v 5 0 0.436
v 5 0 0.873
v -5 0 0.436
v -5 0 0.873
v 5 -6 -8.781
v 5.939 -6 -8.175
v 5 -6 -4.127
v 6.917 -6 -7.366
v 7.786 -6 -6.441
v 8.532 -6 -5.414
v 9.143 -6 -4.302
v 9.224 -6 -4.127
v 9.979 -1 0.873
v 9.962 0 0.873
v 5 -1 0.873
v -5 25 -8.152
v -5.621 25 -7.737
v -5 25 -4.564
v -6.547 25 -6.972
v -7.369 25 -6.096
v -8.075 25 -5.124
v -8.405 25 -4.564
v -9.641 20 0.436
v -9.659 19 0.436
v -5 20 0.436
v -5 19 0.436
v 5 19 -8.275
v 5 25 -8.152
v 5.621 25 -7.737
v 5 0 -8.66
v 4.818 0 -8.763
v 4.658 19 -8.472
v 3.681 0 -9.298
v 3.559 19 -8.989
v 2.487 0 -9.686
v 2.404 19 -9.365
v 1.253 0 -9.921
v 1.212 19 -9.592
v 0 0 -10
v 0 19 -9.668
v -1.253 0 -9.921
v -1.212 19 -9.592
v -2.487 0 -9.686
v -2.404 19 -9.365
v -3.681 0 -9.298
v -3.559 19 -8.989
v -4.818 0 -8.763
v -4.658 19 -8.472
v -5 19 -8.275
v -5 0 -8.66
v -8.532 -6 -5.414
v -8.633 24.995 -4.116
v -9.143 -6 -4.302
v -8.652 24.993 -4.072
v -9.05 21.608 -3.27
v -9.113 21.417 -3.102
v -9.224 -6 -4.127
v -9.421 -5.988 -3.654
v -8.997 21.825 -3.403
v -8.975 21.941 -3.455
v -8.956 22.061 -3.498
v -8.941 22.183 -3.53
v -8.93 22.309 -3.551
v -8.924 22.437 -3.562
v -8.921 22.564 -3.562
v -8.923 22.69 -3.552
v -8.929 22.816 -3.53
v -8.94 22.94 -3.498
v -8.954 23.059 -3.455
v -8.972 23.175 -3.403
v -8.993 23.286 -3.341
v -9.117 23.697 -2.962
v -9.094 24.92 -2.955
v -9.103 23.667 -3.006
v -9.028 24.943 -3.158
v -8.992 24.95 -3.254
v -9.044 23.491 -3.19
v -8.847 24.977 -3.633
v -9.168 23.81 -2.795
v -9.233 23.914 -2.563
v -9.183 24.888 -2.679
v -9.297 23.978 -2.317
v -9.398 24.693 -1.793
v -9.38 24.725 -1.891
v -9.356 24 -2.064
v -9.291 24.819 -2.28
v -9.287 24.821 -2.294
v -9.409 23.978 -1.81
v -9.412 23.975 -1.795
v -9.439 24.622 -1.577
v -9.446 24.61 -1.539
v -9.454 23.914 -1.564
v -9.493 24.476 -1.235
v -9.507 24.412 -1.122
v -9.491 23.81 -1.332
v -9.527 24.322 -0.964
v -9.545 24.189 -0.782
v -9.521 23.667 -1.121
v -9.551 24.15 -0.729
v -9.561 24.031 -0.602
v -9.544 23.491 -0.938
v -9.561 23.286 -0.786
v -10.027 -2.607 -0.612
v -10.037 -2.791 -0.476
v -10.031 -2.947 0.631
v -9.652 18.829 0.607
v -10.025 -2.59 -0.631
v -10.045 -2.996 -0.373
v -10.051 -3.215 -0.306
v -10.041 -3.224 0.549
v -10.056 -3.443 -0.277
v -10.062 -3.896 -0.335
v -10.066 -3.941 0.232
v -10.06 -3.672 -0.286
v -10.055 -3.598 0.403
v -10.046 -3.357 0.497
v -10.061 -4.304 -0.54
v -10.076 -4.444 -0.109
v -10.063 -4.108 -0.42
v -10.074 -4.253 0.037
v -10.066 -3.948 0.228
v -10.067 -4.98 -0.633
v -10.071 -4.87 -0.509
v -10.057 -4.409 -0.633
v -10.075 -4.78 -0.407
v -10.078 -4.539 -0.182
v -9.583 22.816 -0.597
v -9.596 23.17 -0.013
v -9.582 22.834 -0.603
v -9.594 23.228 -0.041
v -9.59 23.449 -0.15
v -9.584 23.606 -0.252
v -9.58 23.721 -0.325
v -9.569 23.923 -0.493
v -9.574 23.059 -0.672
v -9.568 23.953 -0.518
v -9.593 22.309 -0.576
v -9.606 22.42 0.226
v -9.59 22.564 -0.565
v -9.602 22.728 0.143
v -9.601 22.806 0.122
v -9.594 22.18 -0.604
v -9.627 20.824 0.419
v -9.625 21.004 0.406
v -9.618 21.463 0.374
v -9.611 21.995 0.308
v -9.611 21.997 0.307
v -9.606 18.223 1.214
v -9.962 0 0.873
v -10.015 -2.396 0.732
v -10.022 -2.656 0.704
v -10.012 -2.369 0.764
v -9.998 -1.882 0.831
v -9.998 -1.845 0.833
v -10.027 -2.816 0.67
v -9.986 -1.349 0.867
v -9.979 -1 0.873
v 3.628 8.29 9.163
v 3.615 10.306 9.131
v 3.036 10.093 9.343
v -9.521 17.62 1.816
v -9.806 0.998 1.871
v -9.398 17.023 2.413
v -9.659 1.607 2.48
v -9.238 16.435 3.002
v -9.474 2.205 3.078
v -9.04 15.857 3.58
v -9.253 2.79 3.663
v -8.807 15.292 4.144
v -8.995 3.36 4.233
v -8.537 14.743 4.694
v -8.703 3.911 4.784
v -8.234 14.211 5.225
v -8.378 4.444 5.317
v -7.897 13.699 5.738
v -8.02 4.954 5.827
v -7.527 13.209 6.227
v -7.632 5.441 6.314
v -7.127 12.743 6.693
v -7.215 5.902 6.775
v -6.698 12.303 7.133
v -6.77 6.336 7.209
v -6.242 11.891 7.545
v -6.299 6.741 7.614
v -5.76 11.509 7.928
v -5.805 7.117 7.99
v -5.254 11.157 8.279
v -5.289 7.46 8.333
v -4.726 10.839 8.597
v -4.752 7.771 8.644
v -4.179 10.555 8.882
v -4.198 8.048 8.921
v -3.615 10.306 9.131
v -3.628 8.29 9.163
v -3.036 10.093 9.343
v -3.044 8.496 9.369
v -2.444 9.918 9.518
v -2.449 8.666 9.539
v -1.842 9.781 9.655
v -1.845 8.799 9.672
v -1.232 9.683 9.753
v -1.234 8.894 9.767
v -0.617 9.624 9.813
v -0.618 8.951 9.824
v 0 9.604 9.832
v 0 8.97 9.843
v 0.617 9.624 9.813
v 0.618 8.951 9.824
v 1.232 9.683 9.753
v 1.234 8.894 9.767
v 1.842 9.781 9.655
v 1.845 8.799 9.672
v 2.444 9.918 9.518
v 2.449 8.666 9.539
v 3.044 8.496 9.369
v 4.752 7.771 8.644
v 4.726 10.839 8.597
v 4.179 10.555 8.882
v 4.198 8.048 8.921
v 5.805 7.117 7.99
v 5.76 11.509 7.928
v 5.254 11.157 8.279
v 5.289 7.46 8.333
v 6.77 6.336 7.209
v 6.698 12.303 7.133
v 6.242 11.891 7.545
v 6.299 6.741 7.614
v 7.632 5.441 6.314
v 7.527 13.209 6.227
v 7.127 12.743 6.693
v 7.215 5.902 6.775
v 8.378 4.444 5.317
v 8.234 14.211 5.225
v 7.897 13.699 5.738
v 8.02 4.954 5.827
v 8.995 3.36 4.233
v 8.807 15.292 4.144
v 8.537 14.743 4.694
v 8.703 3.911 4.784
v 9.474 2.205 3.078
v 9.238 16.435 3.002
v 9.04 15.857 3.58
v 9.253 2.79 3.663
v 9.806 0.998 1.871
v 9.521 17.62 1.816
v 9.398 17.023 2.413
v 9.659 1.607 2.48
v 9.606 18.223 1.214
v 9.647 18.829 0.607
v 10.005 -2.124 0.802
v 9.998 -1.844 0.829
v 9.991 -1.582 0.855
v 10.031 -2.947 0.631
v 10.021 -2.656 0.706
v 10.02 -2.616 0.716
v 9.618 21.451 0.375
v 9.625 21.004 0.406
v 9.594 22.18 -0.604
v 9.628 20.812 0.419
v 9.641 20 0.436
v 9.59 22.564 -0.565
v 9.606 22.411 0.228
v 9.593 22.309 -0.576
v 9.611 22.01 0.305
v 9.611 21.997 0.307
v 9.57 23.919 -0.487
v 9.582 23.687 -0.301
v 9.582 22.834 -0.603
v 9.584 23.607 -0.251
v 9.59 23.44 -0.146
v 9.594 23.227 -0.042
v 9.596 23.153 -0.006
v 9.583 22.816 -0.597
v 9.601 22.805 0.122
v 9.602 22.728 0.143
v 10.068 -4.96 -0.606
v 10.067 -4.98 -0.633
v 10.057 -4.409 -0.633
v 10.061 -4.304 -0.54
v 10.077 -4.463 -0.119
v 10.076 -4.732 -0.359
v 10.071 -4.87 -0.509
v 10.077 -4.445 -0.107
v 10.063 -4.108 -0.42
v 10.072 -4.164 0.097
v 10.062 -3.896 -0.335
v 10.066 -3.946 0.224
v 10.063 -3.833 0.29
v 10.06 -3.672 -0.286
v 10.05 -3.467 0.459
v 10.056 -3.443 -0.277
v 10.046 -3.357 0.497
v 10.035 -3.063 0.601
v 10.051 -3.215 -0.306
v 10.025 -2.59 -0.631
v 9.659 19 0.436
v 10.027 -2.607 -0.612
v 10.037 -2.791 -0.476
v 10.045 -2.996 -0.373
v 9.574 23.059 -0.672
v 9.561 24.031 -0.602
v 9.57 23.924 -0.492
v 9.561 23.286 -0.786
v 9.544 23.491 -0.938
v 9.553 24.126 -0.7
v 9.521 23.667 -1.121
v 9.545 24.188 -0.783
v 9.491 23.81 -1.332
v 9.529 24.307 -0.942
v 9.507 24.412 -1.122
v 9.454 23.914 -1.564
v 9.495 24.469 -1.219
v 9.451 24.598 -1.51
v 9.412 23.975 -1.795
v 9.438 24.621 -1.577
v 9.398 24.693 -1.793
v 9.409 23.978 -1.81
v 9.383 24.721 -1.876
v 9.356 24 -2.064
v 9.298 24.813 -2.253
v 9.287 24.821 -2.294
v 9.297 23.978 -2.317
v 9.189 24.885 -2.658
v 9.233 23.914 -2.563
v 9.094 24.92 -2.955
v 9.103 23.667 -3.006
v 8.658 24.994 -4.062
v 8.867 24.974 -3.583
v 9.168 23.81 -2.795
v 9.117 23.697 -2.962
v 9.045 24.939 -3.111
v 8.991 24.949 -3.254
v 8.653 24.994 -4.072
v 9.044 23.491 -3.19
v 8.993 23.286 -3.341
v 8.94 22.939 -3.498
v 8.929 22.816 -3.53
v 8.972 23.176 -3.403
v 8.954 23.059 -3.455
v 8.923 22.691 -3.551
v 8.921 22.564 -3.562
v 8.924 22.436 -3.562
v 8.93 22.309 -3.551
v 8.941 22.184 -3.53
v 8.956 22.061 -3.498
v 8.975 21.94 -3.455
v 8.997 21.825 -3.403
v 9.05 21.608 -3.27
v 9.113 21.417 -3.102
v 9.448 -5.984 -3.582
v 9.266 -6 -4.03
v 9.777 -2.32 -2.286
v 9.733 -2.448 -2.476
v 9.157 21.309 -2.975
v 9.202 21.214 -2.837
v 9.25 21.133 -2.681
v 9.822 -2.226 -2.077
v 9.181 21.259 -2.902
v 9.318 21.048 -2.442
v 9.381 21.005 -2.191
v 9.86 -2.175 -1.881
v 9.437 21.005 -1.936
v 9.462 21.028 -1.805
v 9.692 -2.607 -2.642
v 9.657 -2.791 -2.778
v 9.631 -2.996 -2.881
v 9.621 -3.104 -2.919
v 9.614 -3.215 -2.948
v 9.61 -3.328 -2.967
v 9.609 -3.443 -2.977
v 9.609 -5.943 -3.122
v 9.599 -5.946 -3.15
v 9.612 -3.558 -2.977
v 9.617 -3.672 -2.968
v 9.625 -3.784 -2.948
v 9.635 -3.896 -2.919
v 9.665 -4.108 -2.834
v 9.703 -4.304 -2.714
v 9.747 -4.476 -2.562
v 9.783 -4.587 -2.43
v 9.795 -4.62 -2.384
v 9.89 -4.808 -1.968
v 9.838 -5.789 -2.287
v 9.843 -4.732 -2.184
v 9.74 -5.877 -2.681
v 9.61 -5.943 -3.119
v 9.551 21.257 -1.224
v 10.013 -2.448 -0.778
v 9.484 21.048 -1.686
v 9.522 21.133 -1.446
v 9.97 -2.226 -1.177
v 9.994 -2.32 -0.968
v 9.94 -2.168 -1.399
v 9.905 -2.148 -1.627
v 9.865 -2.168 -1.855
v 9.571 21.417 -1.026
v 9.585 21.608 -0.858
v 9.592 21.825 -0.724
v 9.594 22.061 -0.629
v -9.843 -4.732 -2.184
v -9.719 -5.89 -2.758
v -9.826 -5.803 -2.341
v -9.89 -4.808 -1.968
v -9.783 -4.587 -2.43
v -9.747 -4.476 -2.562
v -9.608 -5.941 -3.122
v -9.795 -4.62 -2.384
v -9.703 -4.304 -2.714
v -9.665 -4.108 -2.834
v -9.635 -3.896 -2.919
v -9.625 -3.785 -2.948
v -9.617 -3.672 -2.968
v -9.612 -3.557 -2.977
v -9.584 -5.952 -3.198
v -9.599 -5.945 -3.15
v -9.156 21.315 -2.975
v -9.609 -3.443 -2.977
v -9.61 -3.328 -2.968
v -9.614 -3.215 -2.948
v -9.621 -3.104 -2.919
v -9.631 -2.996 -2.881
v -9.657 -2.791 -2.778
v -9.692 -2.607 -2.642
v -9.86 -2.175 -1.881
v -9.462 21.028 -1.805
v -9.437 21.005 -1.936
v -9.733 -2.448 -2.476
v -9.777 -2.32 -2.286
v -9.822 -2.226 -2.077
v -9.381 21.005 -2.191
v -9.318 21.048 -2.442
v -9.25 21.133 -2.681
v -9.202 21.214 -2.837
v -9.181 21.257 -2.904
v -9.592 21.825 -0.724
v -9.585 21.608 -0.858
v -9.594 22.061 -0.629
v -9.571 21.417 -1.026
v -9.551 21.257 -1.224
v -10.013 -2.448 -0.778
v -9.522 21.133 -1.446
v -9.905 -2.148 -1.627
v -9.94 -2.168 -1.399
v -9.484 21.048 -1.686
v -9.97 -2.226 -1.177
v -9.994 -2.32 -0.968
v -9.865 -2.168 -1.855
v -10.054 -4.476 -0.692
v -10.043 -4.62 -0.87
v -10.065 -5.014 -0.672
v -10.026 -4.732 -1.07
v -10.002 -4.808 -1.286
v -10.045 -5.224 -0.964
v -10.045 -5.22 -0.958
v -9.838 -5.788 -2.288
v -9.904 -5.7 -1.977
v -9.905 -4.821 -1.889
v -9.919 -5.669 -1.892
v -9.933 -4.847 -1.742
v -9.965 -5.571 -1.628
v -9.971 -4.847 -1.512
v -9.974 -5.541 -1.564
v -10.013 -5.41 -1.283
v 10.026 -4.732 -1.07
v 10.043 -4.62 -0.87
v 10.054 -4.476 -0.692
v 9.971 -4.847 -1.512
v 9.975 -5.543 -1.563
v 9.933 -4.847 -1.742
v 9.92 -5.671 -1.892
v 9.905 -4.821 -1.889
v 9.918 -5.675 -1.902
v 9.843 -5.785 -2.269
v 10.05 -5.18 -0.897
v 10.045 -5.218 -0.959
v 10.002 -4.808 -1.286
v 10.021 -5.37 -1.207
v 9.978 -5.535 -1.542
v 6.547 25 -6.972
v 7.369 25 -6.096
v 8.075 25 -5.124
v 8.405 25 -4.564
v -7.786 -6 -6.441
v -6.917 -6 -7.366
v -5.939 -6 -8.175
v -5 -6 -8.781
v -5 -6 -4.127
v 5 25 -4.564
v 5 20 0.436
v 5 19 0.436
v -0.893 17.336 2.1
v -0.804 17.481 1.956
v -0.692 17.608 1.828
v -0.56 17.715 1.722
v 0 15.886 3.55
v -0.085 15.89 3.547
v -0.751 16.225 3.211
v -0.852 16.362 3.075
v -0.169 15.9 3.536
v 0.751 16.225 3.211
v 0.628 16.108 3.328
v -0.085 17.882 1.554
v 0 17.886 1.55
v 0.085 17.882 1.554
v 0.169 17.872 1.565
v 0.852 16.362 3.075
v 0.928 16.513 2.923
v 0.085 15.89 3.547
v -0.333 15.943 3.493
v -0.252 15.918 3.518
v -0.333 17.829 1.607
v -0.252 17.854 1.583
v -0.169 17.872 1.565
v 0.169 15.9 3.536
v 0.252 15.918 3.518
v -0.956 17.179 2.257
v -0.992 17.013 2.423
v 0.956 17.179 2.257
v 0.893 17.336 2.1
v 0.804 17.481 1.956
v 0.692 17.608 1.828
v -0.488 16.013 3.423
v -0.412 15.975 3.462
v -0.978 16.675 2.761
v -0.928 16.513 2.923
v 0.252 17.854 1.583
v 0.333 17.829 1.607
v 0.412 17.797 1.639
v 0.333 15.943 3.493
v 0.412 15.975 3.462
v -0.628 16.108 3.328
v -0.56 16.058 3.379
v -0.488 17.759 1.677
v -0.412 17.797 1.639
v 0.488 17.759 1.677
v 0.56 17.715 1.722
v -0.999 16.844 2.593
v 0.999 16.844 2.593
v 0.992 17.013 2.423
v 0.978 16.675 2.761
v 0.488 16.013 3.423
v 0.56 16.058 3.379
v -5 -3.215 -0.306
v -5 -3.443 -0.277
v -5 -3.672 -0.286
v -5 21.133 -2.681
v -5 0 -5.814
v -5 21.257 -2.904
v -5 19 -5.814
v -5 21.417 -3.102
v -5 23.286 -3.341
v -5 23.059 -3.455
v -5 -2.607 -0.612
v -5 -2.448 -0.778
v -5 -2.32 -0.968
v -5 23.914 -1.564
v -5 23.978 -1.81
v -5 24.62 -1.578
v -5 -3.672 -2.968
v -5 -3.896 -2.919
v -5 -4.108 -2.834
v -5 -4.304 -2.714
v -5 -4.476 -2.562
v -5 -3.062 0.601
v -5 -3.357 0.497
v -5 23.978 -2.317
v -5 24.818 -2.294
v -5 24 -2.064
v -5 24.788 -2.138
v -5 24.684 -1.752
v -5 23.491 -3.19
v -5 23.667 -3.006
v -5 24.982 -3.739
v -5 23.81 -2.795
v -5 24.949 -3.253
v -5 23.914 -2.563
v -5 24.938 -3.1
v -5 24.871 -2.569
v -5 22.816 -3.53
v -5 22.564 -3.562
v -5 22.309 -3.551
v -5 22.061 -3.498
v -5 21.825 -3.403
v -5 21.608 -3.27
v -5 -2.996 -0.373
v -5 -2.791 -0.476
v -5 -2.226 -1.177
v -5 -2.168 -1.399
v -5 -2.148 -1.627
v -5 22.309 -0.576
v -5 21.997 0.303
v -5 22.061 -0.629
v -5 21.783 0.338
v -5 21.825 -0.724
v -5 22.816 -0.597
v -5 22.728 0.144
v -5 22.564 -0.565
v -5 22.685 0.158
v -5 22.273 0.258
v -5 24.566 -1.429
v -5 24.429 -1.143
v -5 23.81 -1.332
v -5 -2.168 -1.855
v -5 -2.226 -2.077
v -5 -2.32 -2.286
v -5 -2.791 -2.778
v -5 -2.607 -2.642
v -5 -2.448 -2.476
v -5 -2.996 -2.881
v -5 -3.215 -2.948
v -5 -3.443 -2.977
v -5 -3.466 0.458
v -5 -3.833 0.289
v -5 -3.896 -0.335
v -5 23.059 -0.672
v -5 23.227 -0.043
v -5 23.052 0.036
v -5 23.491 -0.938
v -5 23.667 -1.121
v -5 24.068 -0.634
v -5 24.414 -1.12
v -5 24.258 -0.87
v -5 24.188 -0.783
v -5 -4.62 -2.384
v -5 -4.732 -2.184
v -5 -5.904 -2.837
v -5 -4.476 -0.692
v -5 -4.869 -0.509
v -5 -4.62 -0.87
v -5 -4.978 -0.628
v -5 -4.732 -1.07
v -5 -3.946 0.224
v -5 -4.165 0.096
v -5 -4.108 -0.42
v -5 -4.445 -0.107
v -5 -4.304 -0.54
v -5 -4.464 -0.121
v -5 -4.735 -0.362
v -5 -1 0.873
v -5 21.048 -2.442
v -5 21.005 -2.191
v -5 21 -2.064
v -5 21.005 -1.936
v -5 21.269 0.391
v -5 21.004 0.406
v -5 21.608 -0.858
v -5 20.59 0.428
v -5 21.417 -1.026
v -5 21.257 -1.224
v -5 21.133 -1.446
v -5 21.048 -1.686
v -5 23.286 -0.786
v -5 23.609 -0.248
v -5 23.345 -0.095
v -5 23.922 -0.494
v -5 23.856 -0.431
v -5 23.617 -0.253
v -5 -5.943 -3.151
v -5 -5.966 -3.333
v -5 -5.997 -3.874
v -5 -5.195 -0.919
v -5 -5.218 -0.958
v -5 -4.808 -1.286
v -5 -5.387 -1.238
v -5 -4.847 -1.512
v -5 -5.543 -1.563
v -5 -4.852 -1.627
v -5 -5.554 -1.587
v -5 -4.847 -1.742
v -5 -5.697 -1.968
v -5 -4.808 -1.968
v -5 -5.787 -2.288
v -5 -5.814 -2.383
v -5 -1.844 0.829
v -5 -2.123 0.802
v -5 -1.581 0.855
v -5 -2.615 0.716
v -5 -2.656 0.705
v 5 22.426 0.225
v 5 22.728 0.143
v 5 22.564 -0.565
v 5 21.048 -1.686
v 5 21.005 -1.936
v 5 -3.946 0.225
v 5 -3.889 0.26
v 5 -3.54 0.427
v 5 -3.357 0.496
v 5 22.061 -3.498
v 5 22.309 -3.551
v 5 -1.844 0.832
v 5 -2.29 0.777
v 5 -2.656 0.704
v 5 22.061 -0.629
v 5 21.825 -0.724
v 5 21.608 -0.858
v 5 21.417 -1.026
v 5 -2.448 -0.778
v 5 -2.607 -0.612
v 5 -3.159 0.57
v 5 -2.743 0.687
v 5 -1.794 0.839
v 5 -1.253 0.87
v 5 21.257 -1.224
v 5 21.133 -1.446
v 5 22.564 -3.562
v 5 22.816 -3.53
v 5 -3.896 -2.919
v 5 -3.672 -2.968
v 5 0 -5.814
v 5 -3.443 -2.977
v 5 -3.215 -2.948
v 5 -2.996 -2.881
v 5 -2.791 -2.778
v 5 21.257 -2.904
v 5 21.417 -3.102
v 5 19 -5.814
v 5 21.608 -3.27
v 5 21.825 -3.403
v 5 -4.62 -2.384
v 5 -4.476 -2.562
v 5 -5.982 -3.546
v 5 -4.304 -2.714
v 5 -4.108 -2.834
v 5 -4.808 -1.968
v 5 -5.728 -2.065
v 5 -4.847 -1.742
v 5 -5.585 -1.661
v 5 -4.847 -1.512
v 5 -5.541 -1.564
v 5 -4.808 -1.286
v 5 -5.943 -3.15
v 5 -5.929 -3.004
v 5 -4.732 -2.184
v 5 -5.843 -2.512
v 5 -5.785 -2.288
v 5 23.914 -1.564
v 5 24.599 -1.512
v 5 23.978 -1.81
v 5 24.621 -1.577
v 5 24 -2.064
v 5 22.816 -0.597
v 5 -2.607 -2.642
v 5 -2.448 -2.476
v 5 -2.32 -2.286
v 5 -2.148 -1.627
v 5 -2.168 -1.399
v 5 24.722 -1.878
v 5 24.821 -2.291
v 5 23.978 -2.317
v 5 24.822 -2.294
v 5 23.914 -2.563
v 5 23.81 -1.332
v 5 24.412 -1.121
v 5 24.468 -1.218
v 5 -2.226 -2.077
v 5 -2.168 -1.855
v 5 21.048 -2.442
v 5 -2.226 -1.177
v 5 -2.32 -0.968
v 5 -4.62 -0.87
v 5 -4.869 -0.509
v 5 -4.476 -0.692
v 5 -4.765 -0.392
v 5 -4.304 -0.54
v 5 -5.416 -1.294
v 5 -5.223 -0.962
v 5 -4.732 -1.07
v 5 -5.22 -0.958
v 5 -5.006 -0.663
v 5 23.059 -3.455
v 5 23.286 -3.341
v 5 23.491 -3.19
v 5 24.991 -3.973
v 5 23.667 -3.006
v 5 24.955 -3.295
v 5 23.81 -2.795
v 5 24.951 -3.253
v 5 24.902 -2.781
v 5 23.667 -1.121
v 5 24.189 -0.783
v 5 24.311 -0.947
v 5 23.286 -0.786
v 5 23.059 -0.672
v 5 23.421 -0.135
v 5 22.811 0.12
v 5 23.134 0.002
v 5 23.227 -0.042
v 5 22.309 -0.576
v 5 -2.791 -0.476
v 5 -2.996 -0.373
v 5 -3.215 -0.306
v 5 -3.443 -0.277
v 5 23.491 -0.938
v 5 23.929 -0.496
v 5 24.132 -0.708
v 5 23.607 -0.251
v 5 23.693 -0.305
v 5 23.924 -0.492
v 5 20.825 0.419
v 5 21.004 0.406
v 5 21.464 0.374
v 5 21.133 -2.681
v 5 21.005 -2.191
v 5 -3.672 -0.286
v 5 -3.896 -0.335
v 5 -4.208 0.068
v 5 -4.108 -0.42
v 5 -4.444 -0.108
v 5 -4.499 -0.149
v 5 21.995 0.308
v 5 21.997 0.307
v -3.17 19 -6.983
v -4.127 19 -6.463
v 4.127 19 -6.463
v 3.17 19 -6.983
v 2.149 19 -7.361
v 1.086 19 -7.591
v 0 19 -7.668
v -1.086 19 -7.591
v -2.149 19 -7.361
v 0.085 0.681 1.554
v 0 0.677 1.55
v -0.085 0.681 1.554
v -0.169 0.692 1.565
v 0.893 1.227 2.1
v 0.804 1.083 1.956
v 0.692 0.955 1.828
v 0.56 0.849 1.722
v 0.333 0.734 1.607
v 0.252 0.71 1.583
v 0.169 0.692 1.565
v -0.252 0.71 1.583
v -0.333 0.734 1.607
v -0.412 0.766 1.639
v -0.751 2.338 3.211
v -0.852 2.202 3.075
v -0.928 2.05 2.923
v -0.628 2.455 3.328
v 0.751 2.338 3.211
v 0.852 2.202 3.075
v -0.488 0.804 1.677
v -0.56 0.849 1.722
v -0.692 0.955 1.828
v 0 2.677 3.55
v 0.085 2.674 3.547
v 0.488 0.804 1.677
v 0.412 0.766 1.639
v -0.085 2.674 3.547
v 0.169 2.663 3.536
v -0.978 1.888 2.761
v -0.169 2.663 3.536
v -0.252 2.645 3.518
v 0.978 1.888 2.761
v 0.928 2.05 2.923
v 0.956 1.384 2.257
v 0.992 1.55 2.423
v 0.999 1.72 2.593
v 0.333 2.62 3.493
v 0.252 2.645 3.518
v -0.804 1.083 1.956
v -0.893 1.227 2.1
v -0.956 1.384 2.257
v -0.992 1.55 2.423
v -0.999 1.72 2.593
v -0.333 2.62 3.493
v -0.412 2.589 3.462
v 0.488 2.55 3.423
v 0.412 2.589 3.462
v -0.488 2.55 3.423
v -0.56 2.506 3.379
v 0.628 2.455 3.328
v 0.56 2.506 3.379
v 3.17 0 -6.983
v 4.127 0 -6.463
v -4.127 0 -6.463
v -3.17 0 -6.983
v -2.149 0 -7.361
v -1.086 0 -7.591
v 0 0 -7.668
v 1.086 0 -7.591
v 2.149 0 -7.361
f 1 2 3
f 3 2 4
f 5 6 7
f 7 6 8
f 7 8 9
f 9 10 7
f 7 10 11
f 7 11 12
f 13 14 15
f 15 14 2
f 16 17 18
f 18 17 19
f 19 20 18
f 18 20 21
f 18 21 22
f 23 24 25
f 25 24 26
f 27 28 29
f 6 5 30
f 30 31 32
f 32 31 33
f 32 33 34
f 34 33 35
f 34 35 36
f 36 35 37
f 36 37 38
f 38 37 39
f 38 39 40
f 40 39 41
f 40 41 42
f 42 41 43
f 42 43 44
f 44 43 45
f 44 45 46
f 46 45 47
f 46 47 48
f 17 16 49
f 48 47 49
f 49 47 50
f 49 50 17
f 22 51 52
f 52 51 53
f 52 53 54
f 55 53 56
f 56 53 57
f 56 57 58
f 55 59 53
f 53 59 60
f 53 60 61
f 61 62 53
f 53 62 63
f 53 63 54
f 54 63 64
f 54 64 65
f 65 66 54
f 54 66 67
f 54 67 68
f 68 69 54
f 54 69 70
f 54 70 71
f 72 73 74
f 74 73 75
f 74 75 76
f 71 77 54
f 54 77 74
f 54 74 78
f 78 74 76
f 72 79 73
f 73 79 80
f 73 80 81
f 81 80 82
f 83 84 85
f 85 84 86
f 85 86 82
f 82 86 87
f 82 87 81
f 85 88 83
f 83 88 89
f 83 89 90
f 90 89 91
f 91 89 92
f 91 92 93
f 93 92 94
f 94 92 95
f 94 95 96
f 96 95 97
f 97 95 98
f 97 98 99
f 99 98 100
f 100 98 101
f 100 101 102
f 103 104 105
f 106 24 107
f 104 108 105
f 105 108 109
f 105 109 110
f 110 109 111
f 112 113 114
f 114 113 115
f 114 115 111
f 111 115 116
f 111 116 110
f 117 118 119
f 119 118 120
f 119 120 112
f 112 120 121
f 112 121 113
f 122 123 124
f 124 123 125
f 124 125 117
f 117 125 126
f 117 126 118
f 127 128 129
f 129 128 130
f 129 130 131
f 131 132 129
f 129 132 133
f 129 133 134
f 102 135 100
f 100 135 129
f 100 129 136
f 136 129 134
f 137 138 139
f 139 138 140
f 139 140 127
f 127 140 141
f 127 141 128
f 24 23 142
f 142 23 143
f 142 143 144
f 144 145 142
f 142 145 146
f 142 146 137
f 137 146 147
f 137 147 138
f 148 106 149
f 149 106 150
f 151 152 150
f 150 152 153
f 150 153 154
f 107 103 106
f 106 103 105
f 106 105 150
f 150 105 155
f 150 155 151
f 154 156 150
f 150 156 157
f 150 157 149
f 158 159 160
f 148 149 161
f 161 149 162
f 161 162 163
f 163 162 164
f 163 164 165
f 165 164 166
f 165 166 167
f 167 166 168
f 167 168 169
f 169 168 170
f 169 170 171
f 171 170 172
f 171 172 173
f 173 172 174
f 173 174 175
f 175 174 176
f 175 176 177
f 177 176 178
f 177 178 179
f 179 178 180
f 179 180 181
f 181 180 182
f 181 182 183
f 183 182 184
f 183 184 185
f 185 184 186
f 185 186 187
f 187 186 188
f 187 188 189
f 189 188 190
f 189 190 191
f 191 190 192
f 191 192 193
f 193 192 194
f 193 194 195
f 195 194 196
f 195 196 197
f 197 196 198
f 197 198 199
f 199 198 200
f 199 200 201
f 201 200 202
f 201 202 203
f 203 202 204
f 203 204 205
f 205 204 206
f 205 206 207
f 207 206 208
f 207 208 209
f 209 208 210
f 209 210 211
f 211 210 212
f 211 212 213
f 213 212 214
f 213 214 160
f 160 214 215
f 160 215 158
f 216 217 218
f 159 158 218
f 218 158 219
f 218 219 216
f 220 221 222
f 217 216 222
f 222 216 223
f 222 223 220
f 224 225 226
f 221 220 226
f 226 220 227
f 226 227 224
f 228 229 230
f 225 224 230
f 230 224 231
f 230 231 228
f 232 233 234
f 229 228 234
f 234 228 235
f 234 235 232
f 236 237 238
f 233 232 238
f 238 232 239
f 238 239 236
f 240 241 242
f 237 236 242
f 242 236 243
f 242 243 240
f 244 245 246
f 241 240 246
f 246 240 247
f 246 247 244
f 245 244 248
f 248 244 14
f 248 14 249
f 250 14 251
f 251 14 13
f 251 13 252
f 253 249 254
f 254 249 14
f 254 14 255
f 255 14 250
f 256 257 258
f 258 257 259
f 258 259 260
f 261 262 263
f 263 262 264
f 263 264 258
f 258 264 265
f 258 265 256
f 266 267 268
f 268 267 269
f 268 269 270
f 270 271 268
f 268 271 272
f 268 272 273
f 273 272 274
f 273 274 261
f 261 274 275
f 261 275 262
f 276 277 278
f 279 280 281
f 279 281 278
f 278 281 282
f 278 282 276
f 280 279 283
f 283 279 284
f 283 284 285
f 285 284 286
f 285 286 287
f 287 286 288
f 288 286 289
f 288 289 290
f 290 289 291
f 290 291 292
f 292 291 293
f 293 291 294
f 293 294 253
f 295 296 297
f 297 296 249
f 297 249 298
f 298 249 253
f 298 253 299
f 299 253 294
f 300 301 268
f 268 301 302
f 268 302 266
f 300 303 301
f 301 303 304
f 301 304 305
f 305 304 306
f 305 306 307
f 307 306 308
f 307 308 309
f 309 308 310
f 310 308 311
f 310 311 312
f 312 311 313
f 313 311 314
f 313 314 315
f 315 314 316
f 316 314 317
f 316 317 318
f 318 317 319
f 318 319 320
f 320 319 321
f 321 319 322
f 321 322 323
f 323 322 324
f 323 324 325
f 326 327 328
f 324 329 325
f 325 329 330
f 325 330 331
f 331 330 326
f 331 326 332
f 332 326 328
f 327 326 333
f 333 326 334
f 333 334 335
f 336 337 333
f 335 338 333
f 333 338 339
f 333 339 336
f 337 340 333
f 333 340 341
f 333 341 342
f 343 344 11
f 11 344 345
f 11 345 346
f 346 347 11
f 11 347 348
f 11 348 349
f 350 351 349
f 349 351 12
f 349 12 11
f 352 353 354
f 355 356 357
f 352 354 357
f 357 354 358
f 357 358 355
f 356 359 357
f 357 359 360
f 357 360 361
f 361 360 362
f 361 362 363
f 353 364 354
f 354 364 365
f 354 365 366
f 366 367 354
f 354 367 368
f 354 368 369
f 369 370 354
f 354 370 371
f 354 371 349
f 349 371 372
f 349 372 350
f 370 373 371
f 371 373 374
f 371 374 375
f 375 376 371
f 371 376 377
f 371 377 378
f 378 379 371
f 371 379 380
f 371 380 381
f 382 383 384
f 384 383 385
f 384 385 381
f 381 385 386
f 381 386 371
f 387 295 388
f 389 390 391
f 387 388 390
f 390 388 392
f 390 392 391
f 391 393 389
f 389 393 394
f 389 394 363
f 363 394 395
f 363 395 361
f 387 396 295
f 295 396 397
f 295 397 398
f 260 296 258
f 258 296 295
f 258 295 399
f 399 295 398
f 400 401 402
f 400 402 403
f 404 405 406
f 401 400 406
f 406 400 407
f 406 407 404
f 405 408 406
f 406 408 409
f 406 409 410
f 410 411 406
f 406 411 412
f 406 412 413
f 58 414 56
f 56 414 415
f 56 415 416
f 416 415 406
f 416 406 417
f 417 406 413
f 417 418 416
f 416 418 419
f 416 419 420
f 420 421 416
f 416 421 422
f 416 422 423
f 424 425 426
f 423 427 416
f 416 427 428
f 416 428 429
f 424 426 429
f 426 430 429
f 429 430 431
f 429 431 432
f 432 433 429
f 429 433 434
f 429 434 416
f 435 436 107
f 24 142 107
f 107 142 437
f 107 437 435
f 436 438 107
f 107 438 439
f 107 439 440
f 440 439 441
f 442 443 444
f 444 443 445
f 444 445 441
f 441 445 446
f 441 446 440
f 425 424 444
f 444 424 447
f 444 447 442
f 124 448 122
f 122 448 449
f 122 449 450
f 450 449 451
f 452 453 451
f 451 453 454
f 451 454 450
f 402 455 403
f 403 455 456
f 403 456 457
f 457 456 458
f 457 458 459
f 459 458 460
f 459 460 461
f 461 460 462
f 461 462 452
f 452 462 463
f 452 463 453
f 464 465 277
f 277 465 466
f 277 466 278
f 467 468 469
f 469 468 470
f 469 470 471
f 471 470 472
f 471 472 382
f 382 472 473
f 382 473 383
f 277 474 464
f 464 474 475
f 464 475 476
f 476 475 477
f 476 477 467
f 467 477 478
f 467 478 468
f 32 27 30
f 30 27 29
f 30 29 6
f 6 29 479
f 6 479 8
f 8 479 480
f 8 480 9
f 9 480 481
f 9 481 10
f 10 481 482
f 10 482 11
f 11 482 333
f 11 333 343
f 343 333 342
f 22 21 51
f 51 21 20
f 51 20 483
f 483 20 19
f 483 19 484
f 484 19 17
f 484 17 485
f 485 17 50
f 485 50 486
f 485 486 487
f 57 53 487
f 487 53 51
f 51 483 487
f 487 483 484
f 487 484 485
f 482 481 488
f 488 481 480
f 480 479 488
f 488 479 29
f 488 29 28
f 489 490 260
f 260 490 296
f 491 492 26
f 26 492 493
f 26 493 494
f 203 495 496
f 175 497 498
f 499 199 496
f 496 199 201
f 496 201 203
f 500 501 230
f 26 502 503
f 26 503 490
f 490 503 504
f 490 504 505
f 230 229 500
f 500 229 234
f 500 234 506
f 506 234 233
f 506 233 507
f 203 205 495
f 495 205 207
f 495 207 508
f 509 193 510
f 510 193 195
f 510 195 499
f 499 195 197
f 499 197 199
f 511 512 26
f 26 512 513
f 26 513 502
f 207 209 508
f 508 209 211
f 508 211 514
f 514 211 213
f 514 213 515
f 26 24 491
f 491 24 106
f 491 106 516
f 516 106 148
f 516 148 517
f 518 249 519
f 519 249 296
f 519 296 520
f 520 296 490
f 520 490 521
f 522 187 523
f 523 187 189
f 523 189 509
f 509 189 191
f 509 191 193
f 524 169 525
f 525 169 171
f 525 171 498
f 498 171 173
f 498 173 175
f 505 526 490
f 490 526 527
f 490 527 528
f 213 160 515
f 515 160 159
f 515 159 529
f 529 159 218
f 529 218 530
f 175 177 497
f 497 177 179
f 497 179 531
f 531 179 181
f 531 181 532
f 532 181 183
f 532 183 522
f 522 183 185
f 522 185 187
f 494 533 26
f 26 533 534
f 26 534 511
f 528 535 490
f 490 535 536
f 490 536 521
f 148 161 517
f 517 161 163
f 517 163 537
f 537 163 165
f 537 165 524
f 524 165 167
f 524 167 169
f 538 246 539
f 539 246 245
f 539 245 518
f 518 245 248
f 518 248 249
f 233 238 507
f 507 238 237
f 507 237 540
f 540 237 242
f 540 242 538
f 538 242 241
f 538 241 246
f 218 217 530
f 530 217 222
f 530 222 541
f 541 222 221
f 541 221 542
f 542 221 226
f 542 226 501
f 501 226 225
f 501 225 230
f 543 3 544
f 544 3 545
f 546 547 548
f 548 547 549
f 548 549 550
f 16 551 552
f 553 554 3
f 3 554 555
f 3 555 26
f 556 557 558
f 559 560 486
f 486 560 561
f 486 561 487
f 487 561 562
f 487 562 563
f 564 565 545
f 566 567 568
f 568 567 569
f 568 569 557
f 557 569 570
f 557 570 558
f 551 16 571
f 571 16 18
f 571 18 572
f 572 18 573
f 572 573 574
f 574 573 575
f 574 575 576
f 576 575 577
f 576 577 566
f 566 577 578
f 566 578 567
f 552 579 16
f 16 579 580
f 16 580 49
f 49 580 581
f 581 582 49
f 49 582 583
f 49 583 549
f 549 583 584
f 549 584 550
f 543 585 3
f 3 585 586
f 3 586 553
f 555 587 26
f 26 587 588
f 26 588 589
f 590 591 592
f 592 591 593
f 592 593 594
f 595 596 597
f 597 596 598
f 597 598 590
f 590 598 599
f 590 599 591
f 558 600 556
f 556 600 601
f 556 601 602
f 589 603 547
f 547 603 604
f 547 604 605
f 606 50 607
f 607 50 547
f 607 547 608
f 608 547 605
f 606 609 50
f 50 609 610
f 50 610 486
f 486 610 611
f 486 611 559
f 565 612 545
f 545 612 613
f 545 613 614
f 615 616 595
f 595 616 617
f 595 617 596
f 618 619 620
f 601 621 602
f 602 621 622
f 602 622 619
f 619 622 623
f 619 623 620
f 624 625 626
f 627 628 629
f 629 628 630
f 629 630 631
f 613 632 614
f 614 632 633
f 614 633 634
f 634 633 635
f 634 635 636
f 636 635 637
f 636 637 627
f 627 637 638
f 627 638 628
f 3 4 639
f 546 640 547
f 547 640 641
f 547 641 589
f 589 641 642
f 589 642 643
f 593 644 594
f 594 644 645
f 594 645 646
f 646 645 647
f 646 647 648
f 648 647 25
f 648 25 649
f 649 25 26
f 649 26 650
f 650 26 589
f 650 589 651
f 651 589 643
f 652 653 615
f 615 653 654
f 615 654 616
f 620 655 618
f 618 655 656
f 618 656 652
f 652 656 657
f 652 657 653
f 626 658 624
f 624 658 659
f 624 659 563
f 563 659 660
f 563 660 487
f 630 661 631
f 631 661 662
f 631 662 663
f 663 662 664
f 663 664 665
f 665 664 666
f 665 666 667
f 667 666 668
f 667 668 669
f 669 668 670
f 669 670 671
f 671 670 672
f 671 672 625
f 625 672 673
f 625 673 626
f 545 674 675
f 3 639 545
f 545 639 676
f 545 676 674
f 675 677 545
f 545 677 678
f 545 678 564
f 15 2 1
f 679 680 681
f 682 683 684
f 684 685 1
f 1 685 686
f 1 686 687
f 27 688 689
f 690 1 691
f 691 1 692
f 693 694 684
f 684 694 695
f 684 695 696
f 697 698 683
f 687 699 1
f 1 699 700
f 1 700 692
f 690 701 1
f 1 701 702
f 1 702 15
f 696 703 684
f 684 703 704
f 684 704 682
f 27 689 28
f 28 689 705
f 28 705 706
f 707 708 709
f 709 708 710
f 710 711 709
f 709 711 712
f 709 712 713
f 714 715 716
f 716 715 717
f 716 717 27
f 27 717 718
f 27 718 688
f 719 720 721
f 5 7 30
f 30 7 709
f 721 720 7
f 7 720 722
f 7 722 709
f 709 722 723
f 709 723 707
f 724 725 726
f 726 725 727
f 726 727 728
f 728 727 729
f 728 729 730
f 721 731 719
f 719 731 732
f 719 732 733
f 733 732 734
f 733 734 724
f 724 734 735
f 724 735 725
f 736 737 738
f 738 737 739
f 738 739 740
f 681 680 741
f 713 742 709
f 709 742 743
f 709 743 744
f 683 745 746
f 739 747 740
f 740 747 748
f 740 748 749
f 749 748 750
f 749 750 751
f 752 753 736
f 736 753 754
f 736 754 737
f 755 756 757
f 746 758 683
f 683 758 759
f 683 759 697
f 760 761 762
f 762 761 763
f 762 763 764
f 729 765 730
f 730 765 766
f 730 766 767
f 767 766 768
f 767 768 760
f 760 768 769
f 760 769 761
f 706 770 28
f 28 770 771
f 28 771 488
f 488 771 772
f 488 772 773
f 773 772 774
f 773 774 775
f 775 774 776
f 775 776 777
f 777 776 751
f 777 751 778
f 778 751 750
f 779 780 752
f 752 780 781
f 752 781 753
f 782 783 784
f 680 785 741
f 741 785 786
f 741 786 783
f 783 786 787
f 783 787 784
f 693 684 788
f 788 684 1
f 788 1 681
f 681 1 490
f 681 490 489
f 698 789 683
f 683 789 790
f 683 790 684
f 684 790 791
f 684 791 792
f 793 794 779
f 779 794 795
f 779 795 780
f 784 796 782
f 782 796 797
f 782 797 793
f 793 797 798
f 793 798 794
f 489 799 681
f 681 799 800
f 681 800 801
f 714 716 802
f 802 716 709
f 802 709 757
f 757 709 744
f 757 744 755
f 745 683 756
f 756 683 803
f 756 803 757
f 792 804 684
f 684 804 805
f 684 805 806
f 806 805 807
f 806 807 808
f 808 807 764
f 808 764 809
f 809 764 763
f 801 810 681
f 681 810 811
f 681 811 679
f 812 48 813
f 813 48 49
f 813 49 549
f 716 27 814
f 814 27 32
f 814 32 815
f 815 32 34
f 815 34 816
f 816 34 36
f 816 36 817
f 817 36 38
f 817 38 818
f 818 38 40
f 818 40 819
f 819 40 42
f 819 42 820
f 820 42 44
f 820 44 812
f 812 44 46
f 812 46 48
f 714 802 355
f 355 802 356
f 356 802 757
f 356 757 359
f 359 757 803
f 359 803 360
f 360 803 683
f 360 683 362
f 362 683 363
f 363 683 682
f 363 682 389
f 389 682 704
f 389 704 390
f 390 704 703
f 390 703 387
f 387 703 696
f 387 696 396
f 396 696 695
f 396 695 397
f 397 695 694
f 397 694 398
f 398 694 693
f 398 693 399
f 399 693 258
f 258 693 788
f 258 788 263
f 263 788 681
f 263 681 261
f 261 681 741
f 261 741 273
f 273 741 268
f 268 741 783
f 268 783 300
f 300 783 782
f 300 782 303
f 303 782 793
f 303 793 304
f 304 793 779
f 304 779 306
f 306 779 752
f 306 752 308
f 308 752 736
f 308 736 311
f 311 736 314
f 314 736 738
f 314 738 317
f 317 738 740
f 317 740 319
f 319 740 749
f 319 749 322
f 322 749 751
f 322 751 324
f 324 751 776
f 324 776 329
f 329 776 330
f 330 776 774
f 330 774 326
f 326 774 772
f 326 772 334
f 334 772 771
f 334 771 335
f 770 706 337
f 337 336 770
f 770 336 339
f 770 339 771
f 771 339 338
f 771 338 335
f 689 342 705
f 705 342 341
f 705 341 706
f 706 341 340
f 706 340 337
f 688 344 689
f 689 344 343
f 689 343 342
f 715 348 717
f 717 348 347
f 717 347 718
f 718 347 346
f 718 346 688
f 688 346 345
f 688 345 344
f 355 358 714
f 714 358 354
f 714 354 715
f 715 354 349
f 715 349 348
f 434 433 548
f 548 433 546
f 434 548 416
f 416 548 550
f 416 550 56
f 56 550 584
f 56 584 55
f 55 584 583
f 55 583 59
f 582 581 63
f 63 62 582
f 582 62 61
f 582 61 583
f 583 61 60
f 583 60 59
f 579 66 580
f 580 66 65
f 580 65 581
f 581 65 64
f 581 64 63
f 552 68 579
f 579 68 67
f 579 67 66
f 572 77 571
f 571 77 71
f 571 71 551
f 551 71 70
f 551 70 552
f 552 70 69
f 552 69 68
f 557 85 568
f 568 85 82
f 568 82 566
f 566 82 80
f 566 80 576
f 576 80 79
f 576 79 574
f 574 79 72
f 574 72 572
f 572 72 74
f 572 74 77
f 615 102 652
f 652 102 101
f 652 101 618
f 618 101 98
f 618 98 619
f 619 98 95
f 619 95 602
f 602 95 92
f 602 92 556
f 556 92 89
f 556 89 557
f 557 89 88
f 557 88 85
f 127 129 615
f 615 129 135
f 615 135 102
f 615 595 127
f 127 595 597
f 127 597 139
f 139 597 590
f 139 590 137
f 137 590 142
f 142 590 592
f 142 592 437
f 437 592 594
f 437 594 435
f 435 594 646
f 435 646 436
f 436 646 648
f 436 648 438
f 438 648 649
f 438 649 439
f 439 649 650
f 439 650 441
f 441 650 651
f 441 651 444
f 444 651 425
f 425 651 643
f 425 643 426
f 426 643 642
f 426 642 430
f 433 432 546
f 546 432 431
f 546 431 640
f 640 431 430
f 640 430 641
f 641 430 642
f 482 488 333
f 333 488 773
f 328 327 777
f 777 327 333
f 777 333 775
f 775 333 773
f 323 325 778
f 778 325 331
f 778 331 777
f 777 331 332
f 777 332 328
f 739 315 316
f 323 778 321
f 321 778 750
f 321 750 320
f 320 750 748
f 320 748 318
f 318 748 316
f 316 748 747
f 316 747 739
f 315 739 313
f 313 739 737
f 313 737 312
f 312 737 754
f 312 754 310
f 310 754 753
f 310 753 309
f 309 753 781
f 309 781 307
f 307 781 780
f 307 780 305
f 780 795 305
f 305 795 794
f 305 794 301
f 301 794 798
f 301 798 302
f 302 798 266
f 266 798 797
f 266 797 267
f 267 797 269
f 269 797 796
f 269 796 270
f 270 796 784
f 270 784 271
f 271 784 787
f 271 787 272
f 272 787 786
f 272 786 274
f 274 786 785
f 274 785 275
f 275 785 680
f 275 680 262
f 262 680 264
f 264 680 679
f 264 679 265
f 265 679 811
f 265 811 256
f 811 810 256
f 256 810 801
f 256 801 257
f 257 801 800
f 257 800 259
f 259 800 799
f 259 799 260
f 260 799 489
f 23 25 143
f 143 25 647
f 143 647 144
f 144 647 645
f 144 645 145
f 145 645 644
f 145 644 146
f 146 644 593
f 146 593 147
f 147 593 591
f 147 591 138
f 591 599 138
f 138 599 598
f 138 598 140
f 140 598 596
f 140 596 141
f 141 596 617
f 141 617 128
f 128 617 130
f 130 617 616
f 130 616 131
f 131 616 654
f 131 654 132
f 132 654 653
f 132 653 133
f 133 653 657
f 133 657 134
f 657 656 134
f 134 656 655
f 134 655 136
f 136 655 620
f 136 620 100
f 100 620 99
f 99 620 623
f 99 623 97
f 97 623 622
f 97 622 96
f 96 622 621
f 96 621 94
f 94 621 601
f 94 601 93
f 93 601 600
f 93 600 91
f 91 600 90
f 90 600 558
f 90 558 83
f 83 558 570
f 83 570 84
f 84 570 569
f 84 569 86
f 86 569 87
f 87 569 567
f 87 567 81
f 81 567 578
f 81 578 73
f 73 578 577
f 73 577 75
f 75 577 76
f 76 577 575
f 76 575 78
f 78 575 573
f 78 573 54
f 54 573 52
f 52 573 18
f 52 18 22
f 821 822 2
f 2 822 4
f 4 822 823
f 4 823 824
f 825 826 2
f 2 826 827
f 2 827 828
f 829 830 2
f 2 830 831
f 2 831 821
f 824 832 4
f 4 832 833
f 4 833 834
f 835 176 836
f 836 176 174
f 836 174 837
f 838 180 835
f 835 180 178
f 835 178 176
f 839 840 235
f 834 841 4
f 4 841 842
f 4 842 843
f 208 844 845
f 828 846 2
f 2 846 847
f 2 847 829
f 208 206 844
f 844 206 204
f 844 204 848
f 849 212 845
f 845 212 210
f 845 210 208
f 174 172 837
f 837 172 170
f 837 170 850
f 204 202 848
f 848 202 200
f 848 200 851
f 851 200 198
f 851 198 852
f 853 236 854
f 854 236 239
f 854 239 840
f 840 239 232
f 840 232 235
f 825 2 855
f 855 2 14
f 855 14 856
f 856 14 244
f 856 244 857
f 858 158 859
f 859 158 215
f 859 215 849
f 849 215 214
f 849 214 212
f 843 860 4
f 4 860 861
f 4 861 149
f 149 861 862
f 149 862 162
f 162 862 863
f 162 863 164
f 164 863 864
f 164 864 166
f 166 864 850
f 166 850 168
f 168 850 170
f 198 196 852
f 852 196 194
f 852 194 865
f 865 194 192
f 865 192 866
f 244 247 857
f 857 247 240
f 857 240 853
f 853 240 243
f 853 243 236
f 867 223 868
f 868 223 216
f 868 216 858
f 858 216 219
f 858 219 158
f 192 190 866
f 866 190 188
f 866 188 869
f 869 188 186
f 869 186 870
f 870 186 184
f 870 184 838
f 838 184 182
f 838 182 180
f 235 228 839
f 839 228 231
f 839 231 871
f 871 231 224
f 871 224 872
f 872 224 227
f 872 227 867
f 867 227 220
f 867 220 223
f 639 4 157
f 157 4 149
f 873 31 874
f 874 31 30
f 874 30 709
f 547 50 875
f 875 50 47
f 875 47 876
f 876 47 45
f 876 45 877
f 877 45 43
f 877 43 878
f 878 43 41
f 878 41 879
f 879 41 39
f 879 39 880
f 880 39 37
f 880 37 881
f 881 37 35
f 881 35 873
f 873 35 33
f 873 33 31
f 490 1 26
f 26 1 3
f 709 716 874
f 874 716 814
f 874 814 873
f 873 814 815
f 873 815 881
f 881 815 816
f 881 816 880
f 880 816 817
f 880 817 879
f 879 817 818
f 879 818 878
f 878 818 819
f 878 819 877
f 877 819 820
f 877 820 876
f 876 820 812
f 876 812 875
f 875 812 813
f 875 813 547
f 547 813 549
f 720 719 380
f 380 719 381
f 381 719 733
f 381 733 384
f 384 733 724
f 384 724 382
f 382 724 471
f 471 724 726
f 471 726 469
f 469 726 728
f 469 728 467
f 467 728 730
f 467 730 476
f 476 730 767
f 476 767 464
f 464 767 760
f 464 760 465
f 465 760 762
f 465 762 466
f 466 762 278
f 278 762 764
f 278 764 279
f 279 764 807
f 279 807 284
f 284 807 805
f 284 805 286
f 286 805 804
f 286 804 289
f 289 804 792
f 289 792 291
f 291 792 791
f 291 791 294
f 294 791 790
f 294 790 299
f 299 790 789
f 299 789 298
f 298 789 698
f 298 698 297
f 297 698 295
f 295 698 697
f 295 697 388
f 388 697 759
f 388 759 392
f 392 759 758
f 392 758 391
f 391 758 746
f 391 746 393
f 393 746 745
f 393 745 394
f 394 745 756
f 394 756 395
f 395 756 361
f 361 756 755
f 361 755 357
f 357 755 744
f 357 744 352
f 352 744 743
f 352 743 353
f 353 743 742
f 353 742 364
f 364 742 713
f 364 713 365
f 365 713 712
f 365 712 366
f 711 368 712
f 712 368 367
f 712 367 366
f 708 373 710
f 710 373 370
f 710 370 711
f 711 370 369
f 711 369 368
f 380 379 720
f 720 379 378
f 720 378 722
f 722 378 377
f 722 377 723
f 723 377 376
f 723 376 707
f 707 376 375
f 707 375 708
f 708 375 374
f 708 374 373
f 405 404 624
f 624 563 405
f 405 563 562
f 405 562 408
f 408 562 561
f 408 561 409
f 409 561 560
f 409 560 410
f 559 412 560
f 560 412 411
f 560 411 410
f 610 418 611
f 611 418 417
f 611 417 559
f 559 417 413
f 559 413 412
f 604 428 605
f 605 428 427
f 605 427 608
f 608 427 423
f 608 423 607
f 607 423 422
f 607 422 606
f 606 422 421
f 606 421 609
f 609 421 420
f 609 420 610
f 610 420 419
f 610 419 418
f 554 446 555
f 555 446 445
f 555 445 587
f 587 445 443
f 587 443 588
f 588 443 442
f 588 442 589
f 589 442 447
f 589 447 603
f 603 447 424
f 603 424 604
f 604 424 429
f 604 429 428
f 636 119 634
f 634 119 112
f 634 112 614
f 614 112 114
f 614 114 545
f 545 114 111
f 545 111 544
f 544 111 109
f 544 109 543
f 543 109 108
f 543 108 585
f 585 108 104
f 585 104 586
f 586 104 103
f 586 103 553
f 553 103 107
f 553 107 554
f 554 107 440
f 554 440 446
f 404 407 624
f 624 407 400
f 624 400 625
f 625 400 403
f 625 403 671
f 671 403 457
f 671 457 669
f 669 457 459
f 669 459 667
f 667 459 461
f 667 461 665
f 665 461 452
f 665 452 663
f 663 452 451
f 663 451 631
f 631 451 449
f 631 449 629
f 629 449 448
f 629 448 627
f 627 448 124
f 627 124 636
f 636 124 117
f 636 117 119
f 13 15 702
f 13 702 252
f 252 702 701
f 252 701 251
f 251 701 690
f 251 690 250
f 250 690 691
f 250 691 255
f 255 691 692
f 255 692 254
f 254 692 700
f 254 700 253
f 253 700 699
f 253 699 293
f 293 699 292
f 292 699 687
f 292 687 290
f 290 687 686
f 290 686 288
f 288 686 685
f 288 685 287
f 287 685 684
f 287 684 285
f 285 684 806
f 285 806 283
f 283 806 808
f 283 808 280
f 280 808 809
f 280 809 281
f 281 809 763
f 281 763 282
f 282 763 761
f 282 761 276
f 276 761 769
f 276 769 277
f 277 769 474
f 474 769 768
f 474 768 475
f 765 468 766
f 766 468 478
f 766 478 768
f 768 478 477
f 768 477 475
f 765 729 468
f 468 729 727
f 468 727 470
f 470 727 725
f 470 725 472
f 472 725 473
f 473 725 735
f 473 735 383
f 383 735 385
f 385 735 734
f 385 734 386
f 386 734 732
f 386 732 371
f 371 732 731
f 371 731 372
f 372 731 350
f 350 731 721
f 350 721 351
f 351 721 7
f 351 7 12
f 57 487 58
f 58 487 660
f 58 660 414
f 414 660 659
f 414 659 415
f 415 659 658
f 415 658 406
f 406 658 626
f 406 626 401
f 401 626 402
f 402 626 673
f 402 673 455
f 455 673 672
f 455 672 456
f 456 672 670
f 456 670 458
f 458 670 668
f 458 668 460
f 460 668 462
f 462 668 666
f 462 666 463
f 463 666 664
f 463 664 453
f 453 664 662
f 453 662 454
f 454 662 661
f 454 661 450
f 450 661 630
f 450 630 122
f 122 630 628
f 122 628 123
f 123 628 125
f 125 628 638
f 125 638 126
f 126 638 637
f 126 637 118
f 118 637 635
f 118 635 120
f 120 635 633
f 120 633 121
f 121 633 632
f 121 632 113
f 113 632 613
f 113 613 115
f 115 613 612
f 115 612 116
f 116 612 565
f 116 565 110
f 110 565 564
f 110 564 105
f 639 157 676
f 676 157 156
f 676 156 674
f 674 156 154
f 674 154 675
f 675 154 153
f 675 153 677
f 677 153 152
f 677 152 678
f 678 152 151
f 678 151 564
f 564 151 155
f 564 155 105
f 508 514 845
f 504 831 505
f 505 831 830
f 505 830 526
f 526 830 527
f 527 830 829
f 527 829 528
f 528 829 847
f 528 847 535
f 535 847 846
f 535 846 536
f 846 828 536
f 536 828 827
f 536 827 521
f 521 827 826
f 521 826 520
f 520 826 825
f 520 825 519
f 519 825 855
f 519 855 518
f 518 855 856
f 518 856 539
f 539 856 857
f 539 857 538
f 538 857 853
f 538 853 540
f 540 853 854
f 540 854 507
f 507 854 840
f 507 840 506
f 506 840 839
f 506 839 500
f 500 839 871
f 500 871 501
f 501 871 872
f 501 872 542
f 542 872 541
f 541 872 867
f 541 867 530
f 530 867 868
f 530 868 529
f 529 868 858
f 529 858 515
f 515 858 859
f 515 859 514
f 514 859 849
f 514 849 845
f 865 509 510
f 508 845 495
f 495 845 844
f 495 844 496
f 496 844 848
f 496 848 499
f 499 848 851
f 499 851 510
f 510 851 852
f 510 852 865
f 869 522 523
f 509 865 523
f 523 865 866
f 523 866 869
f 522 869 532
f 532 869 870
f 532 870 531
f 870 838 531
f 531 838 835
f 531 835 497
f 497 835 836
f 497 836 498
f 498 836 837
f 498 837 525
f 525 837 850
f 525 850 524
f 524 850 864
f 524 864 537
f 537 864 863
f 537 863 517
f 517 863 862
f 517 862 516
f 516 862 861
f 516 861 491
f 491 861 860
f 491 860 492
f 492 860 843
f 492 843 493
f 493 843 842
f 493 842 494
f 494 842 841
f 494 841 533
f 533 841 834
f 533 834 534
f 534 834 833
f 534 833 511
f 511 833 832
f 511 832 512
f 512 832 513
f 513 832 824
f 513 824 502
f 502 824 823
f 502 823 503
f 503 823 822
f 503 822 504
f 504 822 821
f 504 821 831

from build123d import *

# Parameters (mm, degrees)
SKETCH1_R                     = 10
BOSS_EXTRUDE1_DEPTH           = 25
BOSS_EXTRUDE1_TAPER           = 1
BOSS_EXTRUDE1_OTHER_WAY_DEPTH = 6
BOSS_EXTRUDE1_OTHER_WAY_TAPER = -1
CUT_EXTRUDE1_DEPTH            = 29.796026679
CUT_EXTRUDE1_DEPTH_BACK       = 29.796026679
SKETCH3_W                     = 10
SKETCH3_H                     = 6
CUT_EXTRUDE2_DEPTH            = 25
CUT_EXTRUDE3_DEPTH            = 31.907255886
CUT_EXTRUDE3_DEPTH_BACK       = 31.907255886
SKETCH4_R                     = 1.5
FILLET2_SIZE                  = 5
CUT_EXTRUDE5_DEPTH            = 29.796026836
CUT_EXTRUDE5_DEPTH_BACK       = 29.796026836
SKETCH8_W                     = 10
SKETCH8_H                     = 6
CUT_EXTRUDE6_DEPTH            = 30.113855333
CUT_EXTRUDE7_DEPTH            = 29.75944341
CUT_EXTRUDE8_DEPTH            = 31.873174281
CUT_EXTRUDE8_DEPTH_BACK       = 31.873174281
SKETCH9_R                     = 1.351518808
FILLET3_SIZE                  = 5
SKETCH10_R                    = 1
CUT_EXTRUDE9_DEPTH            = 29.749923286


with BuildPart() as part:
    # Sketch1 → Boss-Extrude1 (new body)
    with BuildSketch(Plane(origin=(0, 0, 0), x_dir=(1, 0, 0), z_dir=(0, 1, 0))):
        Circle(SKETCH1_R)
    extrude(amount=BOSS_EXTRUDE1_DEPTH, taper=BOSS_EXTRUDE1_TAPER)

    # Sketch1 → Boss-Extrude1 other way (add)
    with BuildSketch(Plane(origin=(0, 0, 0), x_dir=(1, 0, 0), z_dir=(0, 1, 0))):
        Circle(SKETCH1_R)
    extrude(amount=-BOSS_EXTRUDE1_OTHER_WAY_DEPTH, taper=BOSS_EXTRUDE1_OTHER_WAY_TAPER)

    # Sketch2 → Cut-Extrude1 (cut, two sides: drawn at the far end of the back side and taken through both)
    with BuildSketch(Plane(origin=(0, 0, 0), x_dir=(0, 0, -1), z_dir=(1, 0, 0)).offset(-CUT_EXTRUDE1_DEPTH_BACK)):
        Polygon((-0.436376623, 25), (-0.436376623, 19), (-12.679815256, 6.756561367), (-12.679815256, 25), align=None)
    extrude(amount=CUT_EXTRUDE1_DEPTH + CUT_EXTRUDE1_DEPTH_BACK, mode=Mode.SUBTRACT)

    # Sketch3 → Cut-Extrude2 (cut)
    with BuildSketch(Plane.XY.offset(0.436376623)):
        with Locations((0, 22)):
            Rectangle(SKETCH3_W, SKETCH3_H)
    extrude(amount=-CUT_EXTRUDE2_DEPTH, mode=Mode.SUBTRACT)

    # Sketch4 → Cut-Extrude3 (cut, two sides: drawn at the far end of the back side and taken through both)
    with BuildSketch(Plane(origin=(-5, 0, 0), x_dir=(0, 0, -1), z_dir=(1, 0, 0)).offset(-CUT_EXTRUDE3_DEPTH_BACK)):
        with Locations(Location((2.063623377, 22.5, 0), (0, 0, 90))):
            Circle(SKETCH4_R)
    extrude(amount=CUT_EXTRUDE3_DEPTH + CUT_EXTRUDE3_DEPTH_BACK, mode=Mode.SUBTRACT)

    # Fillet2
    # a fillet whose section is not a circle: 5 mm, written as the material it takes off along each edge
    with BuildSketch(Plane(origin=(-7.5, 25, 0.436376623), x_dir=(0, -1, 0), z_dir=(1, 0, 0))) as fillet2_piece_1:
        with BuildLine():
            Bezier((FILLET2_SIZE, 0), (0, 0), (0, FILLET2_SIZE), weights=[1, 1.5, 1])
            Line((0, FILLET2_SIZE), (0, 0))
            Line((0, 0), (FILLET2_SIZE, 0))
        make_face()
    extrude(amount=29.553662519, mode=Mode.SUBTRACT)
    with BuildSketch(Plane(origin=(-22.053662519, 25, 0.436376623), x_dir=(0, 0, -1), z_dir=(1, 0, 0))) as fillet2_piece_2:
        with BuildLine():
            Bezier((FILLET2_SIZE, 0), (0, 0), (0, -FILLET2_SIZE), weights=[1, 1.5, 1])
            Line((0, -FILLET2_SIZE), (0, 0))
            Line((0, 0), (FILLET2_SIZE, 0))
        make_face()
    extrude(amount=29.553662519, mode=Mode.SUBTRACT)

    # Sketch7 → Cut-Extrude5 (cut, two sides: drawn at the far end of the back side and taken through both)
    with BuildSketch(Plane(origin=(0, 0, 0), x_dir=(0, 0, -1), z_dir=(1, 0, 0)).offset(-CUT_EXTRUDE5_DEPTH_BACK)):
        Polygon((-0.873019237, -6), (-0.873019237, 0), (-11.31781305, 10.444793812), (-11.31781305, -6), align=None)
    extrude(amount=CUT_EXTRUDE5_DEPTH + CUT_EXTRUDE5_DEPTH_BACK, mode=Mode.SUBTRACT)

    # Sketch8 → Cut-Extrude6 (cut, through all)
    with BuildSketch(Plane.XY.offset(0.873019237)):
        with Locations((0, -3)):
            Rectangle(SKETCH8_W, SKETCH8_H)
    extrude(amount=-CUT_EXTRUDE6_DEPTH, mode=Mode.SUBTRACT)

    # Sketch6 → Cut-Extrude7 (cut, through all)
    with BuildSketch(Plane(origin=(0, 19, 0), x_dir=(1, 0, 0), z_dir=(0, 1, 0))):
        with BuildLine():
            Line((5, 5.814090598), (5, -0.436376623))
            Line((5, -0.436376623), (-5, -0.436376623))
            Line((-5, -0.436376623), (-5, 5.814090598))
            ThreePointArc((-5, 5.814090598), (0, 7.668353766), (5, 5.814090598))
        make_face()
    extrude(amount=-CUT_EXTRUDE7_DEPTH, mode=Mode.SUBTRACT)

    # Sketch9 → Cut-Extrude8 (cut, two sides: drawn at the far end of the back side and taken through both)
    with BuildSketch(Plane(origin=(-5, 0, 0), x_dir=(0, 0, -1), z_dir=(1, 0, 0)).offset(-CUT_EXTRUDE8_DEPTH_BACK)):
        with Locations(Location((1.626980763, -3.5, 0), (0, 0, 90))):
            Circle(SKETCH9_R)
    extrude(amount=CUT_EXTRUDE8_DEPTH + CUT_EXTRUDE8_DEPTH_BACK, mode=Mode.SUBTRACT)

    # Fillet3
    # a fillet whose section is not a circle: 5 mm, written as the material it takes off along each edge
    with BuildSketch(Plane(origin=(22.566946591, -6, 0.873019237), x_dir=(0, 0, -1), z_dir=(-1, 0, 0))) as fillet3_piece_1:
        with BuildLine():
            Bezier((FILLET3_SIZE, 0), (0, 0), (0, -FILLET3_SIZE), weights=[1, 1, 1])
            Line((0, -FILLET3_SIZE), (0, 0))
            Line((0, 0), (FILLET3_SIZE, 0))
        make_face()
    extrude(amount=30.066946591, mode=Mode.SUBTRACT)
    with BuildSketch(Plane(origin=(7.5, -6, 0.873019237), x_dir=(0, 1, 0), z_dir=(-1, 0, 0))) as fillet3_piece_2:
        with BuildLine():
            Bezier((FILLET3_SIZE, 0), (0, 0), (0, FILLET3_SIZE), weights=[1, 1, 1])
            Line((0, FILLET3_SIZE), (0, 0))
            Line((0, 0), (FILLET3_SIZE, 0))
        make_face()
    extrude(amount=30.066946591, mode=Mode.SUBTRACT)

    # Sketch10 → Cut-Extrude9 (cut, through all)
    with BuildSketch(Plane(origin=(0, 19, 0), x_dir=(1, 0, 0), z_dir=(0, 1, 0))):
        with Locations(Location((0, -2.550318856, 0), (0, 0, 270))):
            Circle(SKETCH10_R)
    extrude(amount=-CUT_EXTRUDE9_DEPTH, mode=Mode.SUBTRACT)


solid = part.part
